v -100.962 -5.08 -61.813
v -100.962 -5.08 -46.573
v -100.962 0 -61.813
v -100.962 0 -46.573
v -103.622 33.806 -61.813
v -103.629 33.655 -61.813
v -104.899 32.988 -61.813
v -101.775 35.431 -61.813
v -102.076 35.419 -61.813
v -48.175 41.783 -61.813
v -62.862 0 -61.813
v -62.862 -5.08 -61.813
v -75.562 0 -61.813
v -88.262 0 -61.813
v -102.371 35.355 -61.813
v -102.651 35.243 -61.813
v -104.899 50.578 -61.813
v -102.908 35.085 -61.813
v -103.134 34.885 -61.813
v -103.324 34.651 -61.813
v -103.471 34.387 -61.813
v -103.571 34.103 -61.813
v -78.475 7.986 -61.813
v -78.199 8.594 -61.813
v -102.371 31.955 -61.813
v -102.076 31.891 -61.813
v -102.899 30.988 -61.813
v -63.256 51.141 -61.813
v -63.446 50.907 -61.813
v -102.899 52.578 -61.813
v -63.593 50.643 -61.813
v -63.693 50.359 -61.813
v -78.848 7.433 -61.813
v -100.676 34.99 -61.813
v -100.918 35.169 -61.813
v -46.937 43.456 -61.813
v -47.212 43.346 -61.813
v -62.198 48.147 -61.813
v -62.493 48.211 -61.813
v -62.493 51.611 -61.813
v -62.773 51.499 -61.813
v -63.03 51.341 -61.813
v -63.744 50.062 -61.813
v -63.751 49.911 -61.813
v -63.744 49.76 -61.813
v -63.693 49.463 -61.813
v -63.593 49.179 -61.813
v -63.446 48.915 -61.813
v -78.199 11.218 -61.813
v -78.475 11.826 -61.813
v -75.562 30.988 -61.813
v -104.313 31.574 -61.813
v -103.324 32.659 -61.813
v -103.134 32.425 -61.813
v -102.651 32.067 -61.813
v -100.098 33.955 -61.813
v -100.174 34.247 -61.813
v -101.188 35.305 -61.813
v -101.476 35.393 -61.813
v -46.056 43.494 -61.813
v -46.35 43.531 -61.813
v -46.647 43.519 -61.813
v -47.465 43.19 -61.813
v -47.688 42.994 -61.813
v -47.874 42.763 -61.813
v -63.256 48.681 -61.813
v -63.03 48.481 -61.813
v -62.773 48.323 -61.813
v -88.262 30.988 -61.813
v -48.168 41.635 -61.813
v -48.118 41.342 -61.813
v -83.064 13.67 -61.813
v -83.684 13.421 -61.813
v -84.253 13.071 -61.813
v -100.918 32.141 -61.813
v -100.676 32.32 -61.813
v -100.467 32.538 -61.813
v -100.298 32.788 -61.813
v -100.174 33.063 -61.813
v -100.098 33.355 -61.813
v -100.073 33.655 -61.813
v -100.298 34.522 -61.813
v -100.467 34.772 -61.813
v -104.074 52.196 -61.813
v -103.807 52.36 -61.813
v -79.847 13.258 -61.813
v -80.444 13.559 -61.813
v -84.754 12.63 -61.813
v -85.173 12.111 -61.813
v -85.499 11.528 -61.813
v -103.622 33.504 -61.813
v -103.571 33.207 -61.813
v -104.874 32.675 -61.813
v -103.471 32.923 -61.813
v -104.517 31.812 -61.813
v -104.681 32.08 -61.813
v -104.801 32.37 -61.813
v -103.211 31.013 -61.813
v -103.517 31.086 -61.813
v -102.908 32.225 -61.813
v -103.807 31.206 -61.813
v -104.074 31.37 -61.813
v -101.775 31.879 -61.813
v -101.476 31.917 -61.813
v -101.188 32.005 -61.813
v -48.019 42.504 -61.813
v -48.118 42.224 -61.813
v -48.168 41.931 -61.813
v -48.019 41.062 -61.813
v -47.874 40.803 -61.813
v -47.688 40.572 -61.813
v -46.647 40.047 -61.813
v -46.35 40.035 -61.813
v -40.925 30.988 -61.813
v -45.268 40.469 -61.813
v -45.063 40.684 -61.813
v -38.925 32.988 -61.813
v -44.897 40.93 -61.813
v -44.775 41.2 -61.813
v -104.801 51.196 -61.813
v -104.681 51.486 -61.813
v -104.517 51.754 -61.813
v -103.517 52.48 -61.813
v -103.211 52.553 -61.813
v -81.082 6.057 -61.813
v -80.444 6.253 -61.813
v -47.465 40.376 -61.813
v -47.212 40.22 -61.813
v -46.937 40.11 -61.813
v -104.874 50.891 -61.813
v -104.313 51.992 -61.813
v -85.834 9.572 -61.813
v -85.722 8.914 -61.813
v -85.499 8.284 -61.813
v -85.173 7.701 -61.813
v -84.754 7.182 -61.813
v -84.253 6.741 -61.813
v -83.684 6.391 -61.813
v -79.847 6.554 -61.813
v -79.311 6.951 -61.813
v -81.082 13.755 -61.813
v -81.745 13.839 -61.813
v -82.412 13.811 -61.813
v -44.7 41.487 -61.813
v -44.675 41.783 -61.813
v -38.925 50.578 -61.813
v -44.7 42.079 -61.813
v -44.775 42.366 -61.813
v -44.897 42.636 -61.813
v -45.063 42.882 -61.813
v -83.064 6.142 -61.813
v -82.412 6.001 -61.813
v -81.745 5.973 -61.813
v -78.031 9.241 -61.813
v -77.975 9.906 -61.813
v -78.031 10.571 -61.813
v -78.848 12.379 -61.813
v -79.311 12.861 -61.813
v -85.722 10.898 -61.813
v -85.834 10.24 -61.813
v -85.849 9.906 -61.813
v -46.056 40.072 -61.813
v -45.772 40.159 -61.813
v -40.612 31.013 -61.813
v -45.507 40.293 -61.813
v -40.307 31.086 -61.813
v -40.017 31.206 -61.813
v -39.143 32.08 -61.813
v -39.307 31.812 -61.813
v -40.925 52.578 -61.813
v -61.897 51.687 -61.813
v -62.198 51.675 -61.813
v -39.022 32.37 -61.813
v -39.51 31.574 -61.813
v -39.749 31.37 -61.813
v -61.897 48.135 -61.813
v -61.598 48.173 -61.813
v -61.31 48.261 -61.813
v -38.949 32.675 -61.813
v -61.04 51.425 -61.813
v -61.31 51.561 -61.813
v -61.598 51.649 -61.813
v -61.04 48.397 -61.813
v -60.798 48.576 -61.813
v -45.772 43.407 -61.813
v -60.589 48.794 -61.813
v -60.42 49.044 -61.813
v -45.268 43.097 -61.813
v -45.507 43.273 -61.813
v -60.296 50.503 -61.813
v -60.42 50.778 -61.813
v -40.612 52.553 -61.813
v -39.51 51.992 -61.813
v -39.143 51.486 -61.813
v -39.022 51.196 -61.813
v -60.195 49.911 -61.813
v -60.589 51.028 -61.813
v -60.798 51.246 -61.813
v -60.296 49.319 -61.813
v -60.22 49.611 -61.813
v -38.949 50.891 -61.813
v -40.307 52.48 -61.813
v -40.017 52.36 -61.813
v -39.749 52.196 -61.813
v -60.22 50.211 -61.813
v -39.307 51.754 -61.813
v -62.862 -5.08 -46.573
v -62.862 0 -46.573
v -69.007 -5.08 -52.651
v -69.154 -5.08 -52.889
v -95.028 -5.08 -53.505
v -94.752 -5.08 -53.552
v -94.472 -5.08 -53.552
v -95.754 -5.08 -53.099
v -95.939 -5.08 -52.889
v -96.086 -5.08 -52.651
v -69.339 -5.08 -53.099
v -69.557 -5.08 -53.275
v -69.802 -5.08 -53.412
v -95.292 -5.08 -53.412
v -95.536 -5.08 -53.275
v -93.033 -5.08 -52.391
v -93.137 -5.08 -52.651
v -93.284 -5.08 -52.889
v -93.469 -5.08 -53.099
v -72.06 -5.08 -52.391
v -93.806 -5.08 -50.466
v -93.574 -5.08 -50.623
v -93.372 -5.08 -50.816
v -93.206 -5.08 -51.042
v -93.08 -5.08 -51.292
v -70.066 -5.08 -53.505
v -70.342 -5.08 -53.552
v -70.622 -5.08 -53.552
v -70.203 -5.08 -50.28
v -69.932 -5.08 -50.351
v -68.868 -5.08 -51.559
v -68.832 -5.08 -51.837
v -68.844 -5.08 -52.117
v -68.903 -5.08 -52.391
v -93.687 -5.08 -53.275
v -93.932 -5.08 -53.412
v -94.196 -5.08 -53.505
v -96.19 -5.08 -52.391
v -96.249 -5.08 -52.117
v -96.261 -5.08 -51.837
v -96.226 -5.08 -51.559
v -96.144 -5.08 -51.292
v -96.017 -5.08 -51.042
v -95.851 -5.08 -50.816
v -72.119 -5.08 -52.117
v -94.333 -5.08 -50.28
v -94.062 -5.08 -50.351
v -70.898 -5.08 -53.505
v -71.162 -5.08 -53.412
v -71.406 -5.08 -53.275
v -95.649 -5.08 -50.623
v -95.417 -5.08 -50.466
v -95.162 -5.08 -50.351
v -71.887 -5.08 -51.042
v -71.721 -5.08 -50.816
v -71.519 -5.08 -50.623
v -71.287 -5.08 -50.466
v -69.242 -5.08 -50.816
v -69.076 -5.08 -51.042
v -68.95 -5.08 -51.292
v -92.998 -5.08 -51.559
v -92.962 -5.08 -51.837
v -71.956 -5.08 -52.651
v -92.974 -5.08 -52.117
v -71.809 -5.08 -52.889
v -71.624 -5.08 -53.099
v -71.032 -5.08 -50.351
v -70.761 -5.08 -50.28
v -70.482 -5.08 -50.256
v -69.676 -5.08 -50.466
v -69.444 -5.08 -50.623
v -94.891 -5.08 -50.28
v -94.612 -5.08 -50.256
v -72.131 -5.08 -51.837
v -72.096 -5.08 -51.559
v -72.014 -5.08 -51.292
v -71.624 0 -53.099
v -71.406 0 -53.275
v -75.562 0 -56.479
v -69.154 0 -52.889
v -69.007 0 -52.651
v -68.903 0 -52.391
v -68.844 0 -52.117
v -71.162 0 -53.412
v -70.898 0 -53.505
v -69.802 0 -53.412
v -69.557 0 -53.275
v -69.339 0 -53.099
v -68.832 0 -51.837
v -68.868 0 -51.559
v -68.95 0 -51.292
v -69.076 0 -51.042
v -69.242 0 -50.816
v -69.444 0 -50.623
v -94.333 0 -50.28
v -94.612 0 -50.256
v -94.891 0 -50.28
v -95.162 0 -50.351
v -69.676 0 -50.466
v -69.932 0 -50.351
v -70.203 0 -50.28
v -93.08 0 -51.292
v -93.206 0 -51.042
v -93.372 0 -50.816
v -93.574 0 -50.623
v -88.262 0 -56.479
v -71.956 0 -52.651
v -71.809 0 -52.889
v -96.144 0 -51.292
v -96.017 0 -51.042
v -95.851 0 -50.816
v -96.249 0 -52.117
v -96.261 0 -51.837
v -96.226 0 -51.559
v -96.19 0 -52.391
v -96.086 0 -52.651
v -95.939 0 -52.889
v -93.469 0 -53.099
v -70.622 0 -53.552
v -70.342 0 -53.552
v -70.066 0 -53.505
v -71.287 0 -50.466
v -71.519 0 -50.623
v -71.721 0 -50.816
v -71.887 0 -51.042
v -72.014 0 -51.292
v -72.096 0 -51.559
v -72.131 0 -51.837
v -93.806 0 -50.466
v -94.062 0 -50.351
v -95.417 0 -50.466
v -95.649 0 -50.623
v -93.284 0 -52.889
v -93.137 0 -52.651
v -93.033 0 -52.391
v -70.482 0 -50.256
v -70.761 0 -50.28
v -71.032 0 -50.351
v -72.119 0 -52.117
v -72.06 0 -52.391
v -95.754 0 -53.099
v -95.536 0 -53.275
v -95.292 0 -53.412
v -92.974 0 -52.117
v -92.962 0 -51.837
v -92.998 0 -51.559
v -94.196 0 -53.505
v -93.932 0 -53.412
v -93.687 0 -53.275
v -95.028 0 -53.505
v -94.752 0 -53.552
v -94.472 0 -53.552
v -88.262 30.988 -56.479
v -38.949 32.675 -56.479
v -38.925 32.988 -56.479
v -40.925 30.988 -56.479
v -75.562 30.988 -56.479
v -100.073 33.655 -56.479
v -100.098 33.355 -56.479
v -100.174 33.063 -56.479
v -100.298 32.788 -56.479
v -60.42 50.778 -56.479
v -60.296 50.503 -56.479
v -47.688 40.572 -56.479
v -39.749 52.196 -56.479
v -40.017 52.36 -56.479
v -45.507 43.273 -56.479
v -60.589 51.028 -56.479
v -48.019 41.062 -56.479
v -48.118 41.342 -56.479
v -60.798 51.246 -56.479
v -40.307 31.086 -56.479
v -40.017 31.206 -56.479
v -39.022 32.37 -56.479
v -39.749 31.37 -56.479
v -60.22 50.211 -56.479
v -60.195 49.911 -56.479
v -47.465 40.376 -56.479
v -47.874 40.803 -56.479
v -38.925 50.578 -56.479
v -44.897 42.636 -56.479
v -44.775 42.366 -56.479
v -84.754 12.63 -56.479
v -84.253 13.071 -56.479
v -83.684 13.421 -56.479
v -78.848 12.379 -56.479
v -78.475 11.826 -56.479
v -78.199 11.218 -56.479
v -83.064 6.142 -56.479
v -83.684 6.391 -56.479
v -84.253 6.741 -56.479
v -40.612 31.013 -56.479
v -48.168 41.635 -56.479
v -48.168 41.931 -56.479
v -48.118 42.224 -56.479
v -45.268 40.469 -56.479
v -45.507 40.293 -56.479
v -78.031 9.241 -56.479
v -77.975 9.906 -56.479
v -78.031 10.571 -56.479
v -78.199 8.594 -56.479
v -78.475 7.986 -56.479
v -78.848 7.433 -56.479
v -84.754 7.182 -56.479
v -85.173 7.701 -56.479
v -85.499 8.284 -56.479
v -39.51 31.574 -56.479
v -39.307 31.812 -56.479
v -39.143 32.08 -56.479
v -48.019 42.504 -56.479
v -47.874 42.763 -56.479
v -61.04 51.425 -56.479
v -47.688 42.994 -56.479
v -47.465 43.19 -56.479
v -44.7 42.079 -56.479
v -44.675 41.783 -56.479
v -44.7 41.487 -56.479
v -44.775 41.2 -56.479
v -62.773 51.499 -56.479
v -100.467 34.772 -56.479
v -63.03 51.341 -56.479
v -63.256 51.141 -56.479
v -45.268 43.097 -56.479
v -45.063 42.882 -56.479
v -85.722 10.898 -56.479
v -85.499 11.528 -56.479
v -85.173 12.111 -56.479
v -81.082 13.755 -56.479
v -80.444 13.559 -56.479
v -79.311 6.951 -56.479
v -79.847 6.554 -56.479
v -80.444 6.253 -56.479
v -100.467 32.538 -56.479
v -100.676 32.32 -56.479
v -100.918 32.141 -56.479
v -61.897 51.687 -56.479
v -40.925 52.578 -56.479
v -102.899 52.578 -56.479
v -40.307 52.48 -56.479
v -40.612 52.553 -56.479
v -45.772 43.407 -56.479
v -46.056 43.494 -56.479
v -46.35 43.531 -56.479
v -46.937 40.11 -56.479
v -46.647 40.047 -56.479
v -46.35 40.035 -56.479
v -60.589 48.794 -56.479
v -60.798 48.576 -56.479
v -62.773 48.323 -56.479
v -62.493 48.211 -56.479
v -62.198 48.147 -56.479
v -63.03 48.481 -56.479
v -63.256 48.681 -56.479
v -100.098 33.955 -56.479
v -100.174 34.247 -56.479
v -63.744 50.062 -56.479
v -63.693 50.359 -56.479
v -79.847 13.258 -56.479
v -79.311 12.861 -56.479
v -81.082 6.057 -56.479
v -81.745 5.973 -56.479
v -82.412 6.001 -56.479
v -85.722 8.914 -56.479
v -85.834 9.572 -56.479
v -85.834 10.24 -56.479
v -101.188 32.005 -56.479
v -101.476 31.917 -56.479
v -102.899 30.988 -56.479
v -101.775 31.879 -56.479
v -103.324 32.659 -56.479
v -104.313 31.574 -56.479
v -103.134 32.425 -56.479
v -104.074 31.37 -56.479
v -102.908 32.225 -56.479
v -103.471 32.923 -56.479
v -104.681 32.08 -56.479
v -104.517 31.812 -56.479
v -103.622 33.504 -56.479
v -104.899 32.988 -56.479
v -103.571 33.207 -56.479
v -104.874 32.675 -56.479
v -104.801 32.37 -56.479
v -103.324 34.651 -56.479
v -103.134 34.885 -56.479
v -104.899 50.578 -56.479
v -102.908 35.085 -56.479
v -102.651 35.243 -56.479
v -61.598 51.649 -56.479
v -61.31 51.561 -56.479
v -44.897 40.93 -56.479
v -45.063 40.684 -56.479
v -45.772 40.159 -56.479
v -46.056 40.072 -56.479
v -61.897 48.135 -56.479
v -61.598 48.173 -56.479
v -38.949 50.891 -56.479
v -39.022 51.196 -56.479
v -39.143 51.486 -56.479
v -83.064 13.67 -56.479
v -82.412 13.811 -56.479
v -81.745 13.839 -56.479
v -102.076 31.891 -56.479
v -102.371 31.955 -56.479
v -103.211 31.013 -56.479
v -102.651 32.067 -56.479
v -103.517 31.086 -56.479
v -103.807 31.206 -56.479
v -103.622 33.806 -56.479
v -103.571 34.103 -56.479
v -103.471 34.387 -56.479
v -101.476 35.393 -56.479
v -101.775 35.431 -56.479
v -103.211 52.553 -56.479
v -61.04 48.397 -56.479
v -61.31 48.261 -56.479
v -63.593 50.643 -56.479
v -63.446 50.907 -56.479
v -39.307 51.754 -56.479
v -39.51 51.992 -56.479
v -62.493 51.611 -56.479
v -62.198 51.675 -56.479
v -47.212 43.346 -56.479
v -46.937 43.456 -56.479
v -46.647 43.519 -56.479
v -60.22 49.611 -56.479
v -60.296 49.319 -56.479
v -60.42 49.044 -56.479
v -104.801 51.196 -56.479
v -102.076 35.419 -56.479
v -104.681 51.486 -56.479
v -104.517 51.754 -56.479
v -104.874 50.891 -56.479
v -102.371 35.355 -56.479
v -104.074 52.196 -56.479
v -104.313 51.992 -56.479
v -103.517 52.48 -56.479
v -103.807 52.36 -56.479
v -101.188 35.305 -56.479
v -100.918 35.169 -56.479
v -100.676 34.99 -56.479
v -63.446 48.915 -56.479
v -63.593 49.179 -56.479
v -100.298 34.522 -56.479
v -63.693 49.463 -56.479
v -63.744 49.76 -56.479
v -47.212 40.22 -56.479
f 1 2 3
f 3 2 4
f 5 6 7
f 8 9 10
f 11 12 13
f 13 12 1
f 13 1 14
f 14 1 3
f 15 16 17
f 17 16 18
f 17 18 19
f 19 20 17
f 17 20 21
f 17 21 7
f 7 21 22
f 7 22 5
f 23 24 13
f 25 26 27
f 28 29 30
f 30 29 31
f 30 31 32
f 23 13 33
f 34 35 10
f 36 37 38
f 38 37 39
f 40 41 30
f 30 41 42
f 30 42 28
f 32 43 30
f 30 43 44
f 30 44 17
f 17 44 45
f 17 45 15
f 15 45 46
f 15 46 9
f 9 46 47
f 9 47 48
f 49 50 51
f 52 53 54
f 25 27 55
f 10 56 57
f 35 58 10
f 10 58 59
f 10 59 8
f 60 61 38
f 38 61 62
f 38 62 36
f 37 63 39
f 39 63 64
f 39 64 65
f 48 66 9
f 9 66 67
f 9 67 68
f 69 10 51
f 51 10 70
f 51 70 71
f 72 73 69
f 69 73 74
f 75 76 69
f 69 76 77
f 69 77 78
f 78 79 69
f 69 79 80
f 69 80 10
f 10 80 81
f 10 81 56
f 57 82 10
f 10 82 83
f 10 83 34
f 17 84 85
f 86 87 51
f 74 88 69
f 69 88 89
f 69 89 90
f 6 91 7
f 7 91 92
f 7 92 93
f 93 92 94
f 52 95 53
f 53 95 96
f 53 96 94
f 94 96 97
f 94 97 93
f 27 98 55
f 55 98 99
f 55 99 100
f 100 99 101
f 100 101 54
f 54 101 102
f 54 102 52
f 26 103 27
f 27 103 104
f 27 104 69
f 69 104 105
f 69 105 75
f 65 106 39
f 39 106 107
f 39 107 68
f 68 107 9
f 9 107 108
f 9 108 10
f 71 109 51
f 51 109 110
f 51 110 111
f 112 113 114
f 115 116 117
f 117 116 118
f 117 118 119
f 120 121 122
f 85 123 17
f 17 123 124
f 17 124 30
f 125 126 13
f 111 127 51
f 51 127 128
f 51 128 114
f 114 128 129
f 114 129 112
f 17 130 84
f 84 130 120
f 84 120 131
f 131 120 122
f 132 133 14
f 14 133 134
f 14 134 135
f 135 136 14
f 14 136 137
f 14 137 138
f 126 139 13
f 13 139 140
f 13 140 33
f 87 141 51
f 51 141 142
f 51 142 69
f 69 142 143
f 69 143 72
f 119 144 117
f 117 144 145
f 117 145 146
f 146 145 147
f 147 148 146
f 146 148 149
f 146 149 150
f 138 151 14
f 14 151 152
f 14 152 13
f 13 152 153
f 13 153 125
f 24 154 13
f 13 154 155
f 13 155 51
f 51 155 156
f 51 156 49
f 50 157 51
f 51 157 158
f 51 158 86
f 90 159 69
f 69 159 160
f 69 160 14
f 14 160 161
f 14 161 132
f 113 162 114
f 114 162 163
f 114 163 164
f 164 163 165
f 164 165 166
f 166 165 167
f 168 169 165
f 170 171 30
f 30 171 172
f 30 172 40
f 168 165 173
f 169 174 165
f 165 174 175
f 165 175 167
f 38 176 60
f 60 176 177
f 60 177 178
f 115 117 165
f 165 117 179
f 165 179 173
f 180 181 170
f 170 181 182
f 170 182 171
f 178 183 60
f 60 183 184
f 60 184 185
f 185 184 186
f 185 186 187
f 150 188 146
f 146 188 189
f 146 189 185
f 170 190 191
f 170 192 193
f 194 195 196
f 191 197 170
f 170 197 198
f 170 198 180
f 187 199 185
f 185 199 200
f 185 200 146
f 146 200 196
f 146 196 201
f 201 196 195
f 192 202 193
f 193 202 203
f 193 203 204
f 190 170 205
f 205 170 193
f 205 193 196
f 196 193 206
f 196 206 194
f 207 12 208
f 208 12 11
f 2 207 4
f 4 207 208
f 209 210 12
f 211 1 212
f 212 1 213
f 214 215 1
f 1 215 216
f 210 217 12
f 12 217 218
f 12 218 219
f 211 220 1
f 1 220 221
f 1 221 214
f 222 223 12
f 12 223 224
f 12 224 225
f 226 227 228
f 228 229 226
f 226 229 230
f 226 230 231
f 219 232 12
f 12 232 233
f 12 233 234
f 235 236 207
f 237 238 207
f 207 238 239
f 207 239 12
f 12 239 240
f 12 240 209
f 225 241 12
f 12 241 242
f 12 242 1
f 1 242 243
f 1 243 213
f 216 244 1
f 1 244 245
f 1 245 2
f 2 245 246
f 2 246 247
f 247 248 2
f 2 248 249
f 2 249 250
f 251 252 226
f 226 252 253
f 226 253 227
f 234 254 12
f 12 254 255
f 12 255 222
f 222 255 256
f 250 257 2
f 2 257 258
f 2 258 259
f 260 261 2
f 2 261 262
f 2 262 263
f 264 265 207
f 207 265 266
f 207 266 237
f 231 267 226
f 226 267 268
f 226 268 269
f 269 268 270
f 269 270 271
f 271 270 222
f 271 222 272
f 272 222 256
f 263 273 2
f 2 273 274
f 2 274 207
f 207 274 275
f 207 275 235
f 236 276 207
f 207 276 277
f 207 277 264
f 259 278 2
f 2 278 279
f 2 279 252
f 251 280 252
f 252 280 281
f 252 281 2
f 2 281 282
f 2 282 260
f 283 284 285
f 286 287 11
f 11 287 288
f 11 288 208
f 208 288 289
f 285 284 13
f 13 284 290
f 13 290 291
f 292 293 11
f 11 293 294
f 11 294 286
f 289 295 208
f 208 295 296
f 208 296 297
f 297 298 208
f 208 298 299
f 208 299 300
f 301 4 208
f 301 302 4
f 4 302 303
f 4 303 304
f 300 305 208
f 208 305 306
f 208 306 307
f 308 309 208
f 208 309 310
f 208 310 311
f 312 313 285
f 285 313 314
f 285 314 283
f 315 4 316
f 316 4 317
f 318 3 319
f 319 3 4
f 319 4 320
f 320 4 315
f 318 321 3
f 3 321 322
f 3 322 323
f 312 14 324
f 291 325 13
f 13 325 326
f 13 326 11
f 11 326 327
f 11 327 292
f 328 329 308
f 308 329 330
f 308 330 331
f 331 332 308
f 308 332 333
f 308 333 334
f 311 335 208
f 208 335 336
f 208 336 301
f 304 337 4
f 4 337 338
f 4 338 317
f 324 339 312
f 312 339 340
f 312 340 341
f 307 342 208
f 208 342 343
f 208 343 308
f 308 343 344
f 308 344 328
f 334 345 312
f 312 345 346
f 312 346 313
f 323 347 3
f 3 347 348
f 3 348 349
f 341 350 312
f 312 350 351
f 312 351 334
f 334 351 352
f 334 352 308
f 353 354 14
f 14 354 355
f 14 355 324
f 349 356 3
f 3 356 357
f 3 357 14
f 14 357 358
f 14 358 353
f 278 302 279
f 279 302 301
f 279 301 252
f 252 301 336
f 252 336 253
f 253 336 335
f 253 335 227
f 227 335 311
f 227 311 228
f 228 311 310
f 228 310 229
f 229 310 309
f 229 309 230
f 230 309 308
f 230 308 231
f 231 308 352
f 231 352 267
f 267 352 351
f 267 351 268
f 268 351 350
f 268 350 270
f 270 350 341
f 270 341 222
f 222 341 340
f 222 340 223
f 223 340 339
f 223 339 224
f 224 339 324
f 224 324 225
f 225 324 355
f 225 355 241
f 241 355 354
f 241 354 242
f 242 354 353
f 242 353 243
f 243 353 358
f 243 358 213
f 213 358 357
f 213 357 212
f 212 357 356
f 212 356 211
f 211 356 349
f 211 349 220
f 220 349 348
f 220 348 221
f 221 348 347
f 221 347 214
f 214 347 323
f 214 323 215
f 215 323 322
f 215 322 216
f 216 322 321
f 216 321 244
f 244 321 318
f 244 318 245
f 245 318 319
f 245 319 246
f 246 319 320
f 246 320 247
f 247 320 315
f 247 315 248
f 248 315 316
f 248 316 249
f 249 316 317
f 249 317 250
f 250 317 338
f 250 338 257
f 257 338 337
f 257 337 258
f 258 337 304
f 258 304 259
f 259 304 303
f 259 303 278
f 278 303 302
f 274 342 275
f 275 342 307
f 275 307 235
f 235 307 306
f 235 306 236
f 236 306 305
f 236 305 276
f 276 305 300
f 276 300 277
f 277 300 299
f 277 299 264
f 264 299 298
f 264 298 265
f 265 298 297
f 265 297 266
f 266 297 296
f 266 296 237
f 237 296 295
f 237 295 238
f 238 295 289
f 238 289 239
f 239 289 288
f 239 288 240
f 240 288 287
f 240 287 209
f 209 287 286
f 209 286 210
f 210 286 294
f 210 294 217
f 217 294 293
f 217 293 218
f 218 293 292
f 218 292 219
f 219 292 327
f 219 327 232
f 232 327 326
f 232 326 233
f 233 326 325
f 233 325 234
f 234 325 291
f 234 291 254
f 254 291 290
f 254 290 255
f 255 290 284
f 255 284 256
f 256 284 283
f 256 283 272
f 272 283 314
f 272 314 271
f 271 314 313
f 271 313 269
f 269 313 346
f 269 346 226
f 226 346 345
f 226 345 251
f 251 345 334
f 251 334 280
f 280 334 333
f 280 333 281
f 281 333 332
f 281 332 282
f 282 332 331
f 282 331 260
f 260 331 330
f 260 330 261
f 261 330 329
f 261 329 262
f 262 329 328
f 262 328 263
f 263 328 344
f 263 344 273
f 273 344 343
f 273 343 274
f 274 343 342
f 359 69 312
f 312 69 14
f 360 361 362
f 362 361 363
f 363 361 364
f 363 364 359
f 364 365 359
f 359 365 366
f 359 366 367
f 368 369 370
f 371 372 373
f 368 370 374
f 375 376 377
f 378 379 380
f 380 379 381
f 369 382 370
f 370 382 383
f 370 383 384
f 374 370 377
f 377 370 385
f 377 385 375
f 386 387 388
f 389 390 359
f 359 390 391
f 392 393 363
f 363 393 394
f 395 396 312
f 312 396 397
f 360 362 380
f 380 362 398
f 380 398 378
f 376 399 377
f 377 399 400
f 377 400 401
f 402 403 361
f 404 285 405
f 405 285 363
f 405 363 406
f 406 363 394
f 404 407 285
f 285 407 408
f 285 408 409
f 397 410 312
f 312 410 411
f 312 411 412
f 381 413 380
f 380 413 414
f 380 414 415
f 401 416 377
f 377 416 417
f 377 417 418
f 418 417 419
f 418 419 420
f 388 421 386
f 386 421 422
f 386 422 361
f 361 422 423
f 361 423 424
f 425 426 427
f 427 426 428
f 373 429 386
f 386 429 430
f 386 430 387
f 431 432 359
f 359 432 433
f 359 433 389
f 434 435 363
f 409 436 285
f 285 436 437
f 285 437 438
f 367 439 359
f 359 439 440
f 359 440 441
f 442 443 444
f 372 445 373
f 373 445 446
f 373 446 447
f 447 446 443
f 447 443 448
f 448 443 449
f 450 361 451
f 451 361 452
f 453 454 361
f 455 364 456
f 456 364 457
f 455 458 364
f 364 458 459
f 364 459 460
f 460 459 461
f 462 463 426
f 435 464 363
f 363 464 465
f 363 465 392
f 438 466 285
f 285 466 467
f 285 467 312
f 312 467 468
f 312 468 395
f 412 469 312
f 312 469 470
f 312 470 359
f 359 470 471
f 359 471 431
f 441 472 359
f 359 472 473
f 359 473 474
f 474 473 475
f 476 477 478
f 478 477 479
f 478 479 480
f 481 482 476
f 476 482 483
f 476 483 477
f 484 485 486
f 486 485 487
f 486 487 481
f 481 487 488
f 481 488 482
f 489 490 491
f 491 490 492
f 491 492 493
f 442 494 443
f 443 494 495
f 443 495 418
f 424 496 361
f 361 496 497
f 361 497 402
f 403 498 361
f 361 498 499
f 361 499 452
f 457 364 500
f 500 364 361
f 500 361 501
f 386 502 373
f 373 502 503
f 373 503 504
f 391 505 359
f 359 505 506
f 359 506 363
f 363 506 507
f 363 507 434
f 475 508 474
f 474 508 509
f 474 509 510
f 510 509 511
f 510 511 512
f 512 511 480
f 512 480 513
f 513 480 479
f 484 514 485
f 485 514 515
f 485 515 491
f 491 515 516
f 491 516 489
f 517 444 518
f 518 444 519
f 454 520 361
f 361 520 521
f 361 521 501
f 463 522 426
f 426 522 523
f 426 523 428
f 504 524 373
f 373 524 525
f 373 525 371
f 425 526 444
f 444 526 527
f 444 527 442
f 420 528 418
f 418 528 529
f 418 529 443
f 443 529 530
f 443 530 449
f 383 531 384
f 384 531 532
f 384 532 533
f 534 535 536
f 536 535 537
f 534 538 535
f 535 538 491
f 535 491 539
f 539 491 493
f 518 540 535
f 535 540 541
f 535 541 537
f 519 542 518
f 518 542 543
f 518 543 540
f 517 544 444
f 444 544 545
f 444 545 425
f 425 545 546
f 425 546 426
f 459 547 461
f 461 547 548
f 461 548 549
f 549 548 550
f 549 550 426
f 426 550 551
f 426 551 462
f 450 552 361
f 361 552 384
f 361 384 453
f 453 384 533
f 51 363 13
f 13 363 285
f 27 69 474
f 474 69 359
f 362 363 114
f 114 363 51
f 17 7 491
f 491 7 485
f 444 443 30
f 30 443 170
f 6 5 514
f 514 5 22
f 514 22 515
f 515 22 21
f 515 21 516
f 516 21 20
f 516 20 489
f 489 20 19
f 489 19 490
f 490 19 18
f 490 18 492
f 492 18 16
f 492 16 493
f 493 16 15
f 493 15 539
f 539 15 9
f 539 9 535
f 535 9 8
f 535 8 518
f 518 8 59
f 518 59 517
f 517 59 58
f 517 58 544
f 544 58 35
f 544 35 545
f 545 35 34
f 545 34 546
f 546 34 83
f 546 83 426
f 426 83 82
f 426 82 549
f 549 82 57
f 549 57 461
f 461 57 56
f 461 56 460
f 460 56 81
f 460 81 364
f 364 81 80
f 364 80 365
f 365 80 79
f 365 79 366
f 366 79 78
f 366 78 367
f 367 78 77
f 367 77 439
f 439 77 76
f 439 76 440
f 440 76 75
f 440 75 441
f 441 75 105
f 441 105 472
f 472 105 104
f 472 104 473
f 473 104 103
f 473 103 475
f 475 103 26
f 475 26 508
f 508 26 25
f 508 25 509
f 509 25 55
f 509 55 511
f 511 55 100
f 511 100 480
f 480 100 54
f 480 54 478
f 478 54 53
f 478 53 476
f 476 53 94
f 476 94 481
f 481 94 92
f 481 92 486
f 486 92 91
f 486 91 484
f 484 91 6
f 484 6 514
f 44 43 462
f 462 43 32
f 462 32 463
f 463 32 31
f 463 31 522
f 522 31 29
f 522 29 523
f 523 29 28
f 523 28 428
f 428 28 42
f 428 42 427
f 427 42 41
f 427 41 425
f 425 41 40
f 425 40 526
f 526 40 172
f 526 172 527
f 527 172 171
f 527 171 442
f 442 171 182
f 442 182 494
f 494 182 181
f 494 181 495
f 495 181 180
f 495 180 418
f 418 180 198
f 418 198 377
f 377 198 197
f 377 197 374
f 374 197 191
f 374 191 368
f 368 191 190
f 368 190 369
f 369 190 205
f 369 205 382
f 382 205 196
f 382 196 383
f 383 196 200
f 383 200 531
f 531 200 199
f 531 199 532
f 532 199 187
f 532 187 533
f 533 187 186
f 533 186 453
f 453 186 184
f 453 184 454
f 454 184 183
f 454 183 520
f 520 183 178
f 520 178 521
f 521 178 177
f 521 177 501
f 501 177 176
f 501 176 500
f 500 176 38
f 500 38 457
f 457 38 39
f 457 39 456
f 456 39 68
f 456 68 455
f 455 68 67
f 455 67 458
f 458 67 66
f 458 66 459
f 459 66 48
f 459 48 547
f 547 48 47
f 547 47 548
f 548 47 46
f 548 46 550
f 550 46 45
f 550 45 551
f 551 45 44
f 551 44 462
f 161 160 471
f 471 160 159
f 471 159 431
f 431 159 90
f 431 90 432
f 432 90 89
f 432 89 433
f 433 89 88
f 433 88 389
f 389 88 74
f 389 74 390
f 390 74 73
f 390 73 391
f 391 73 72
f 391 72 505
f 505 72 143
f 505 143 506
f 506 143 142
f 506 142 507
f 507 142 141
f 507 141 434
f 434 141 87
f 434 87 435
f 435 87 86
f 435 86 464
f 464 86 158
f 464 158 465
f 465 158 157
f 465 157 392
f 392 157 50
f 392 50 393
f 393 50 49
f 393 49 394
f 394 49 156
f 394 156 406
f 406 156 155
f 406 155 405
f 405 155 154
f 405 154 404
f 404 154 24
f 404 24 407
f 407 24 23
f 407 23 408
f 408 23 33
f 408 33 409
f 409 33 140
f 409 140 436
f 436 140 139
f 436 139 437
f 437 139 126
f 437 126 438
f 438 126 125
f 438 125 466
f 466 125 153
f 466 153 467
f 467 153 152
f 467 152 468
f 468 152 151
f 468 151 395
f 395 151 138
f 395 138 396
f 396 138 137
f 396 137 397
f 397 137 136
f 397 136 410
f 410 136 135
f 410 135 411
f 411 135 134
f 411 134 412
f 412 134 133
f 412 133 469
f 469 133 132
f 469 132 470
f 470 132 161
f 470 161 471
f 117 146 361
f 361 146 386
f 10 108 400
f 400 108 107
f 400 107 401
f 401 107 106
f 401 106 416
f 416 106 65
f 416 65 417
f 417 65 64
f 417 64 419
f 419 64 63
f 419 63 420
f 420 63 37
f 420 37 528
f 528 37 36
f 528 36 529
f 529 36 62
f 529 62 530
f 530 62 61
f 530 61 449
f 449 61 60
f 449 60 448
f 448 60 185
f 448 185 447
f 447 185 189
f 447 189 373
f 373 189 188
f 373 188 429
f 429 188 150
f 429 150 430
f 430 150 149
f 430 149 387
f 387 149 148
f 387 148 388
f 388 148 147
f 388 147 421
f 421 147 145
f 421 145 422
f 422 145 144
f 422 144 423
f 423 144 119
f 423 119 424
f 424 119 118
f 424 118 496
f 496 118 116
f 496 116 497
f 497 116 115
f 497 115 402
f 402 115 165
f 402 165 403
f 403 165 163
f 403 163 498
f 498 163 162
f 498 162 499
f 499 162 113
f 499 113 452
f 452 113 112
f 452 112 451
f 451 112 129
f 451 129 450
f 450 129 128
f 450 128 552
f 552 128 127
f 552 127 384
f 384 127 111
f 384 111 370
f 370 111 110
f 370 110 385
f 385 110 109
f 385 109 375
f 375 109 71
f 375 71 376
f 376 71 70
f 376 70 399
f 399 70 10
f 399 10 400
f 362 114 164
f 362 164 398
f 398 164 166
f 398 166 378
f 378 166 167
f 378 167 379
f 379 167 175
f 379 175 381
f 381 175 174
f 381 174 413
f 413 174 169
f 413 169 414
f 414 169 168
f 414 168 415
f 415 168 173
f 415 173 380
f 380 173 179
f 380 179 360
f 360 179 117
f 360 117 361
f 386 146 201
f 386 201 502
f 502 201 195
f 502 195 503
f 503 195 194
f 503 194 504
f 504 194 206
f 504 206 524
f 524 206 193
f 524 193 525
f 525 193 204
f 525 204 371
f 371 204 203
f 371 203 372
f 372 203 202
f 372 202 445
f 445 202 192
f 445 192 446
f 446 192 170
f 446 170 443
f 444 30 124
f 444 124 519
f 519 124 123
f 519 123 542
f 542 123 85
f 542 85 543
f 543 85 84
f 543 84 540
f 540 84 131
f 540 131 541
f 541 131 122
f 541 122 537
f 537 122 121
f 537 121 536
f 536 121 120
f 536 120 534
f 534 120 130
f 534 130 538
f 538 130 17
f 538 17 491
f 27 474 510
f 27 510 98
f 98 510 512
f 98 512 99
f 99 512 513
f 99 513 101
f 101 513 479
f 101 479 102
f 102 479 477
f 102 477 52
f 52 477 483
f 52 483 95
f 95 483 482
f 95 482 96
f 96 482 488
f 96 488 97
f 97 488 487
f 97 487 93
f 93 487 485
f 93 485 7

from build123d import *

# Parameters (mm, degrees)
SKETCH1_W           = 38.1
SKETCH1_H           = 15.24
BOSS_EXTRUDE1_DEPTH = 5.08
SKETCH2_R           = 1.651
CUT_EXTRUDE1_DEPTH  = 119.490202326
SKETCH3_W           = 12.7
SKETCH3_H           = 5.334
BOSS_EXTRUDE2_DEPTH = 30.988
SKETCH6_W           = 45.974
SKETCH6_H           = 5.334
BOSS_EXTRUDE3_DEPTH = 21.59
SKETCH7_R           = 1.778
CUT_EXTRUDE4_DEPTH  = 118.755224526
SKETCH8_R           = 3.937
CUT_EXTRUDE5_DEPTH  = 118.755224526
SKETCH9_W           = 5.334
SKETCH9_H           = 21.59
BOSS_EXTRUDE4_DEPTH = 20
SKETCH10_R          = 1.75
CUT_EXTRUDE6_DEPTH  = 118.755224526
FILLET1_R           = 2
FILLET2_R           = 2


with BuildPart() as part:
    # Sketch1 → Boss-Extrude1 (new body)
    with BuildSketch(Plane(origin=(0, 0, 0), x_dir=(1, 0, 0), z_dir=(0, 1, 0))):
        with Locations((-81.911608108, 54.193229454)):
            Rectangle(SKETCH1_W, SKETCH1_H)
    extrude(amount=-BOSS_EXTRUDE1_DEPTH)

    # Sketch2 → Cut-Extrude1 (cut, through all)
    with BuildSketch(Plane(origin=(0, 0, 0), x_dir=(1, 0, 0), z_dir=(0, 1, 0))):
        with Locations(Location((-94.611608108, 51.907229454, 0), (0, 0, 270))):
            Circle(SKETCH2_R)
        with Locations(Location((-70.481608108, 51.907229454, 0), (0, 0, 270))):
            Circle(SKETCH2_R)
    extrude(amount=-CUT_EXTRUDE1_DEPTH, mode=Mode.SUBTRACT)

    # Sketch3 → Boss-Extrude2 (add)
    with BuildSketch(Plane(origin=(0, 0, 0), x_dir=(1, 0, 0), z_dir=(0, 1, 0))):
        with Locations((-81.911608108, 59.146229454)):
            Rectangle(SKETCH3_W, SKETCH3_H)
    extrude(amount=BOSS_EXTRUDE2_DEPTH)

    # Sketch6 → Boss-Extrude3 (add)
    with BuildSketch(Plane(origin=(0, 30.988, 0), x_dir=(1, 0, 0), z_dir=(0, 1, 0))):
        with Locations((-81.911608108, 59.146229454)):
            Rectangle(SKETCH6_W, SKETCH6_H)
    extrude(amount=BOSS_EXTRUDE3_DEPTH)

    # Sketch7 → Cut-Extrude4 (cut, through all)
    with BuildSketch(Plane.XY.offset(-56.479229454)):
        with Locations((-101.850608108, 33.655)):
            Circle(SKETCH7_R)
        with Locations((-61.972608108, 49.911)):
            Circle(SKETCH7_R)
    extrude(amount=-CUT_EXTRUDE4_DEPTH, mode=Mode.SUBTRACT)

    # Sketch8 → Cut-Extrude5 (cut, through all)
    with BuildSketch(Plane.XY.offset(-56.479229454)):
        with Locations((-81.911608108, 9.906)):
            Circle(SKETCH8_R)
    extrude(amount=-CUT_EXTRUDE5_DEPTH, mode=Mode.SUBTRACT)

    # Sketch9 → Boss-Extrude4 (add)
    with BuildSketch(Plane(origin=(-58.924608108, 0, 0), x_dir=(0, 0, -1), z_dir=(1, 0, 0))):
        with Locations((59.146229454, 41.783)):
            Rectangle(SKETCH9_W, SKETCH9_H)
    extrude(amount=BOSS_EXTRUDE4_DEPTH)

    # Sketch10 → Cut-Extrude6 (cut, through all)
    with BuildSketch(Plane.XY.offset(-56.479229454)):
        with Locations((-46.424608108, 41.783)):
            Circle(SKETCH10_R)
    extrude(amount=-CUT_EXTRUDE6_DEPTH, mode=Mode.SUBTRACT)

    # Fillet1
    fillet1_edges = [part.edges().sort_by_distance(p)[0] for p in [
        (-38.924608108, 30.988, -59.146229454),
        (-38.924608108, 52.578, -59.146229454),
    ]]
    fillet(fillet1_edges, radius=FILLET1_R)

    # Fillet2
    fillet2_edges = [part.edges().sort_by_distance(p)[0] for p in [
        (-104.898608108, 30.988, -59.146229454),
        (-104.898608108, 52.578, -59.146229454),
    ]]
    fillet(fillet2_edges, radius=FILLET2_R)


solid = part.part
